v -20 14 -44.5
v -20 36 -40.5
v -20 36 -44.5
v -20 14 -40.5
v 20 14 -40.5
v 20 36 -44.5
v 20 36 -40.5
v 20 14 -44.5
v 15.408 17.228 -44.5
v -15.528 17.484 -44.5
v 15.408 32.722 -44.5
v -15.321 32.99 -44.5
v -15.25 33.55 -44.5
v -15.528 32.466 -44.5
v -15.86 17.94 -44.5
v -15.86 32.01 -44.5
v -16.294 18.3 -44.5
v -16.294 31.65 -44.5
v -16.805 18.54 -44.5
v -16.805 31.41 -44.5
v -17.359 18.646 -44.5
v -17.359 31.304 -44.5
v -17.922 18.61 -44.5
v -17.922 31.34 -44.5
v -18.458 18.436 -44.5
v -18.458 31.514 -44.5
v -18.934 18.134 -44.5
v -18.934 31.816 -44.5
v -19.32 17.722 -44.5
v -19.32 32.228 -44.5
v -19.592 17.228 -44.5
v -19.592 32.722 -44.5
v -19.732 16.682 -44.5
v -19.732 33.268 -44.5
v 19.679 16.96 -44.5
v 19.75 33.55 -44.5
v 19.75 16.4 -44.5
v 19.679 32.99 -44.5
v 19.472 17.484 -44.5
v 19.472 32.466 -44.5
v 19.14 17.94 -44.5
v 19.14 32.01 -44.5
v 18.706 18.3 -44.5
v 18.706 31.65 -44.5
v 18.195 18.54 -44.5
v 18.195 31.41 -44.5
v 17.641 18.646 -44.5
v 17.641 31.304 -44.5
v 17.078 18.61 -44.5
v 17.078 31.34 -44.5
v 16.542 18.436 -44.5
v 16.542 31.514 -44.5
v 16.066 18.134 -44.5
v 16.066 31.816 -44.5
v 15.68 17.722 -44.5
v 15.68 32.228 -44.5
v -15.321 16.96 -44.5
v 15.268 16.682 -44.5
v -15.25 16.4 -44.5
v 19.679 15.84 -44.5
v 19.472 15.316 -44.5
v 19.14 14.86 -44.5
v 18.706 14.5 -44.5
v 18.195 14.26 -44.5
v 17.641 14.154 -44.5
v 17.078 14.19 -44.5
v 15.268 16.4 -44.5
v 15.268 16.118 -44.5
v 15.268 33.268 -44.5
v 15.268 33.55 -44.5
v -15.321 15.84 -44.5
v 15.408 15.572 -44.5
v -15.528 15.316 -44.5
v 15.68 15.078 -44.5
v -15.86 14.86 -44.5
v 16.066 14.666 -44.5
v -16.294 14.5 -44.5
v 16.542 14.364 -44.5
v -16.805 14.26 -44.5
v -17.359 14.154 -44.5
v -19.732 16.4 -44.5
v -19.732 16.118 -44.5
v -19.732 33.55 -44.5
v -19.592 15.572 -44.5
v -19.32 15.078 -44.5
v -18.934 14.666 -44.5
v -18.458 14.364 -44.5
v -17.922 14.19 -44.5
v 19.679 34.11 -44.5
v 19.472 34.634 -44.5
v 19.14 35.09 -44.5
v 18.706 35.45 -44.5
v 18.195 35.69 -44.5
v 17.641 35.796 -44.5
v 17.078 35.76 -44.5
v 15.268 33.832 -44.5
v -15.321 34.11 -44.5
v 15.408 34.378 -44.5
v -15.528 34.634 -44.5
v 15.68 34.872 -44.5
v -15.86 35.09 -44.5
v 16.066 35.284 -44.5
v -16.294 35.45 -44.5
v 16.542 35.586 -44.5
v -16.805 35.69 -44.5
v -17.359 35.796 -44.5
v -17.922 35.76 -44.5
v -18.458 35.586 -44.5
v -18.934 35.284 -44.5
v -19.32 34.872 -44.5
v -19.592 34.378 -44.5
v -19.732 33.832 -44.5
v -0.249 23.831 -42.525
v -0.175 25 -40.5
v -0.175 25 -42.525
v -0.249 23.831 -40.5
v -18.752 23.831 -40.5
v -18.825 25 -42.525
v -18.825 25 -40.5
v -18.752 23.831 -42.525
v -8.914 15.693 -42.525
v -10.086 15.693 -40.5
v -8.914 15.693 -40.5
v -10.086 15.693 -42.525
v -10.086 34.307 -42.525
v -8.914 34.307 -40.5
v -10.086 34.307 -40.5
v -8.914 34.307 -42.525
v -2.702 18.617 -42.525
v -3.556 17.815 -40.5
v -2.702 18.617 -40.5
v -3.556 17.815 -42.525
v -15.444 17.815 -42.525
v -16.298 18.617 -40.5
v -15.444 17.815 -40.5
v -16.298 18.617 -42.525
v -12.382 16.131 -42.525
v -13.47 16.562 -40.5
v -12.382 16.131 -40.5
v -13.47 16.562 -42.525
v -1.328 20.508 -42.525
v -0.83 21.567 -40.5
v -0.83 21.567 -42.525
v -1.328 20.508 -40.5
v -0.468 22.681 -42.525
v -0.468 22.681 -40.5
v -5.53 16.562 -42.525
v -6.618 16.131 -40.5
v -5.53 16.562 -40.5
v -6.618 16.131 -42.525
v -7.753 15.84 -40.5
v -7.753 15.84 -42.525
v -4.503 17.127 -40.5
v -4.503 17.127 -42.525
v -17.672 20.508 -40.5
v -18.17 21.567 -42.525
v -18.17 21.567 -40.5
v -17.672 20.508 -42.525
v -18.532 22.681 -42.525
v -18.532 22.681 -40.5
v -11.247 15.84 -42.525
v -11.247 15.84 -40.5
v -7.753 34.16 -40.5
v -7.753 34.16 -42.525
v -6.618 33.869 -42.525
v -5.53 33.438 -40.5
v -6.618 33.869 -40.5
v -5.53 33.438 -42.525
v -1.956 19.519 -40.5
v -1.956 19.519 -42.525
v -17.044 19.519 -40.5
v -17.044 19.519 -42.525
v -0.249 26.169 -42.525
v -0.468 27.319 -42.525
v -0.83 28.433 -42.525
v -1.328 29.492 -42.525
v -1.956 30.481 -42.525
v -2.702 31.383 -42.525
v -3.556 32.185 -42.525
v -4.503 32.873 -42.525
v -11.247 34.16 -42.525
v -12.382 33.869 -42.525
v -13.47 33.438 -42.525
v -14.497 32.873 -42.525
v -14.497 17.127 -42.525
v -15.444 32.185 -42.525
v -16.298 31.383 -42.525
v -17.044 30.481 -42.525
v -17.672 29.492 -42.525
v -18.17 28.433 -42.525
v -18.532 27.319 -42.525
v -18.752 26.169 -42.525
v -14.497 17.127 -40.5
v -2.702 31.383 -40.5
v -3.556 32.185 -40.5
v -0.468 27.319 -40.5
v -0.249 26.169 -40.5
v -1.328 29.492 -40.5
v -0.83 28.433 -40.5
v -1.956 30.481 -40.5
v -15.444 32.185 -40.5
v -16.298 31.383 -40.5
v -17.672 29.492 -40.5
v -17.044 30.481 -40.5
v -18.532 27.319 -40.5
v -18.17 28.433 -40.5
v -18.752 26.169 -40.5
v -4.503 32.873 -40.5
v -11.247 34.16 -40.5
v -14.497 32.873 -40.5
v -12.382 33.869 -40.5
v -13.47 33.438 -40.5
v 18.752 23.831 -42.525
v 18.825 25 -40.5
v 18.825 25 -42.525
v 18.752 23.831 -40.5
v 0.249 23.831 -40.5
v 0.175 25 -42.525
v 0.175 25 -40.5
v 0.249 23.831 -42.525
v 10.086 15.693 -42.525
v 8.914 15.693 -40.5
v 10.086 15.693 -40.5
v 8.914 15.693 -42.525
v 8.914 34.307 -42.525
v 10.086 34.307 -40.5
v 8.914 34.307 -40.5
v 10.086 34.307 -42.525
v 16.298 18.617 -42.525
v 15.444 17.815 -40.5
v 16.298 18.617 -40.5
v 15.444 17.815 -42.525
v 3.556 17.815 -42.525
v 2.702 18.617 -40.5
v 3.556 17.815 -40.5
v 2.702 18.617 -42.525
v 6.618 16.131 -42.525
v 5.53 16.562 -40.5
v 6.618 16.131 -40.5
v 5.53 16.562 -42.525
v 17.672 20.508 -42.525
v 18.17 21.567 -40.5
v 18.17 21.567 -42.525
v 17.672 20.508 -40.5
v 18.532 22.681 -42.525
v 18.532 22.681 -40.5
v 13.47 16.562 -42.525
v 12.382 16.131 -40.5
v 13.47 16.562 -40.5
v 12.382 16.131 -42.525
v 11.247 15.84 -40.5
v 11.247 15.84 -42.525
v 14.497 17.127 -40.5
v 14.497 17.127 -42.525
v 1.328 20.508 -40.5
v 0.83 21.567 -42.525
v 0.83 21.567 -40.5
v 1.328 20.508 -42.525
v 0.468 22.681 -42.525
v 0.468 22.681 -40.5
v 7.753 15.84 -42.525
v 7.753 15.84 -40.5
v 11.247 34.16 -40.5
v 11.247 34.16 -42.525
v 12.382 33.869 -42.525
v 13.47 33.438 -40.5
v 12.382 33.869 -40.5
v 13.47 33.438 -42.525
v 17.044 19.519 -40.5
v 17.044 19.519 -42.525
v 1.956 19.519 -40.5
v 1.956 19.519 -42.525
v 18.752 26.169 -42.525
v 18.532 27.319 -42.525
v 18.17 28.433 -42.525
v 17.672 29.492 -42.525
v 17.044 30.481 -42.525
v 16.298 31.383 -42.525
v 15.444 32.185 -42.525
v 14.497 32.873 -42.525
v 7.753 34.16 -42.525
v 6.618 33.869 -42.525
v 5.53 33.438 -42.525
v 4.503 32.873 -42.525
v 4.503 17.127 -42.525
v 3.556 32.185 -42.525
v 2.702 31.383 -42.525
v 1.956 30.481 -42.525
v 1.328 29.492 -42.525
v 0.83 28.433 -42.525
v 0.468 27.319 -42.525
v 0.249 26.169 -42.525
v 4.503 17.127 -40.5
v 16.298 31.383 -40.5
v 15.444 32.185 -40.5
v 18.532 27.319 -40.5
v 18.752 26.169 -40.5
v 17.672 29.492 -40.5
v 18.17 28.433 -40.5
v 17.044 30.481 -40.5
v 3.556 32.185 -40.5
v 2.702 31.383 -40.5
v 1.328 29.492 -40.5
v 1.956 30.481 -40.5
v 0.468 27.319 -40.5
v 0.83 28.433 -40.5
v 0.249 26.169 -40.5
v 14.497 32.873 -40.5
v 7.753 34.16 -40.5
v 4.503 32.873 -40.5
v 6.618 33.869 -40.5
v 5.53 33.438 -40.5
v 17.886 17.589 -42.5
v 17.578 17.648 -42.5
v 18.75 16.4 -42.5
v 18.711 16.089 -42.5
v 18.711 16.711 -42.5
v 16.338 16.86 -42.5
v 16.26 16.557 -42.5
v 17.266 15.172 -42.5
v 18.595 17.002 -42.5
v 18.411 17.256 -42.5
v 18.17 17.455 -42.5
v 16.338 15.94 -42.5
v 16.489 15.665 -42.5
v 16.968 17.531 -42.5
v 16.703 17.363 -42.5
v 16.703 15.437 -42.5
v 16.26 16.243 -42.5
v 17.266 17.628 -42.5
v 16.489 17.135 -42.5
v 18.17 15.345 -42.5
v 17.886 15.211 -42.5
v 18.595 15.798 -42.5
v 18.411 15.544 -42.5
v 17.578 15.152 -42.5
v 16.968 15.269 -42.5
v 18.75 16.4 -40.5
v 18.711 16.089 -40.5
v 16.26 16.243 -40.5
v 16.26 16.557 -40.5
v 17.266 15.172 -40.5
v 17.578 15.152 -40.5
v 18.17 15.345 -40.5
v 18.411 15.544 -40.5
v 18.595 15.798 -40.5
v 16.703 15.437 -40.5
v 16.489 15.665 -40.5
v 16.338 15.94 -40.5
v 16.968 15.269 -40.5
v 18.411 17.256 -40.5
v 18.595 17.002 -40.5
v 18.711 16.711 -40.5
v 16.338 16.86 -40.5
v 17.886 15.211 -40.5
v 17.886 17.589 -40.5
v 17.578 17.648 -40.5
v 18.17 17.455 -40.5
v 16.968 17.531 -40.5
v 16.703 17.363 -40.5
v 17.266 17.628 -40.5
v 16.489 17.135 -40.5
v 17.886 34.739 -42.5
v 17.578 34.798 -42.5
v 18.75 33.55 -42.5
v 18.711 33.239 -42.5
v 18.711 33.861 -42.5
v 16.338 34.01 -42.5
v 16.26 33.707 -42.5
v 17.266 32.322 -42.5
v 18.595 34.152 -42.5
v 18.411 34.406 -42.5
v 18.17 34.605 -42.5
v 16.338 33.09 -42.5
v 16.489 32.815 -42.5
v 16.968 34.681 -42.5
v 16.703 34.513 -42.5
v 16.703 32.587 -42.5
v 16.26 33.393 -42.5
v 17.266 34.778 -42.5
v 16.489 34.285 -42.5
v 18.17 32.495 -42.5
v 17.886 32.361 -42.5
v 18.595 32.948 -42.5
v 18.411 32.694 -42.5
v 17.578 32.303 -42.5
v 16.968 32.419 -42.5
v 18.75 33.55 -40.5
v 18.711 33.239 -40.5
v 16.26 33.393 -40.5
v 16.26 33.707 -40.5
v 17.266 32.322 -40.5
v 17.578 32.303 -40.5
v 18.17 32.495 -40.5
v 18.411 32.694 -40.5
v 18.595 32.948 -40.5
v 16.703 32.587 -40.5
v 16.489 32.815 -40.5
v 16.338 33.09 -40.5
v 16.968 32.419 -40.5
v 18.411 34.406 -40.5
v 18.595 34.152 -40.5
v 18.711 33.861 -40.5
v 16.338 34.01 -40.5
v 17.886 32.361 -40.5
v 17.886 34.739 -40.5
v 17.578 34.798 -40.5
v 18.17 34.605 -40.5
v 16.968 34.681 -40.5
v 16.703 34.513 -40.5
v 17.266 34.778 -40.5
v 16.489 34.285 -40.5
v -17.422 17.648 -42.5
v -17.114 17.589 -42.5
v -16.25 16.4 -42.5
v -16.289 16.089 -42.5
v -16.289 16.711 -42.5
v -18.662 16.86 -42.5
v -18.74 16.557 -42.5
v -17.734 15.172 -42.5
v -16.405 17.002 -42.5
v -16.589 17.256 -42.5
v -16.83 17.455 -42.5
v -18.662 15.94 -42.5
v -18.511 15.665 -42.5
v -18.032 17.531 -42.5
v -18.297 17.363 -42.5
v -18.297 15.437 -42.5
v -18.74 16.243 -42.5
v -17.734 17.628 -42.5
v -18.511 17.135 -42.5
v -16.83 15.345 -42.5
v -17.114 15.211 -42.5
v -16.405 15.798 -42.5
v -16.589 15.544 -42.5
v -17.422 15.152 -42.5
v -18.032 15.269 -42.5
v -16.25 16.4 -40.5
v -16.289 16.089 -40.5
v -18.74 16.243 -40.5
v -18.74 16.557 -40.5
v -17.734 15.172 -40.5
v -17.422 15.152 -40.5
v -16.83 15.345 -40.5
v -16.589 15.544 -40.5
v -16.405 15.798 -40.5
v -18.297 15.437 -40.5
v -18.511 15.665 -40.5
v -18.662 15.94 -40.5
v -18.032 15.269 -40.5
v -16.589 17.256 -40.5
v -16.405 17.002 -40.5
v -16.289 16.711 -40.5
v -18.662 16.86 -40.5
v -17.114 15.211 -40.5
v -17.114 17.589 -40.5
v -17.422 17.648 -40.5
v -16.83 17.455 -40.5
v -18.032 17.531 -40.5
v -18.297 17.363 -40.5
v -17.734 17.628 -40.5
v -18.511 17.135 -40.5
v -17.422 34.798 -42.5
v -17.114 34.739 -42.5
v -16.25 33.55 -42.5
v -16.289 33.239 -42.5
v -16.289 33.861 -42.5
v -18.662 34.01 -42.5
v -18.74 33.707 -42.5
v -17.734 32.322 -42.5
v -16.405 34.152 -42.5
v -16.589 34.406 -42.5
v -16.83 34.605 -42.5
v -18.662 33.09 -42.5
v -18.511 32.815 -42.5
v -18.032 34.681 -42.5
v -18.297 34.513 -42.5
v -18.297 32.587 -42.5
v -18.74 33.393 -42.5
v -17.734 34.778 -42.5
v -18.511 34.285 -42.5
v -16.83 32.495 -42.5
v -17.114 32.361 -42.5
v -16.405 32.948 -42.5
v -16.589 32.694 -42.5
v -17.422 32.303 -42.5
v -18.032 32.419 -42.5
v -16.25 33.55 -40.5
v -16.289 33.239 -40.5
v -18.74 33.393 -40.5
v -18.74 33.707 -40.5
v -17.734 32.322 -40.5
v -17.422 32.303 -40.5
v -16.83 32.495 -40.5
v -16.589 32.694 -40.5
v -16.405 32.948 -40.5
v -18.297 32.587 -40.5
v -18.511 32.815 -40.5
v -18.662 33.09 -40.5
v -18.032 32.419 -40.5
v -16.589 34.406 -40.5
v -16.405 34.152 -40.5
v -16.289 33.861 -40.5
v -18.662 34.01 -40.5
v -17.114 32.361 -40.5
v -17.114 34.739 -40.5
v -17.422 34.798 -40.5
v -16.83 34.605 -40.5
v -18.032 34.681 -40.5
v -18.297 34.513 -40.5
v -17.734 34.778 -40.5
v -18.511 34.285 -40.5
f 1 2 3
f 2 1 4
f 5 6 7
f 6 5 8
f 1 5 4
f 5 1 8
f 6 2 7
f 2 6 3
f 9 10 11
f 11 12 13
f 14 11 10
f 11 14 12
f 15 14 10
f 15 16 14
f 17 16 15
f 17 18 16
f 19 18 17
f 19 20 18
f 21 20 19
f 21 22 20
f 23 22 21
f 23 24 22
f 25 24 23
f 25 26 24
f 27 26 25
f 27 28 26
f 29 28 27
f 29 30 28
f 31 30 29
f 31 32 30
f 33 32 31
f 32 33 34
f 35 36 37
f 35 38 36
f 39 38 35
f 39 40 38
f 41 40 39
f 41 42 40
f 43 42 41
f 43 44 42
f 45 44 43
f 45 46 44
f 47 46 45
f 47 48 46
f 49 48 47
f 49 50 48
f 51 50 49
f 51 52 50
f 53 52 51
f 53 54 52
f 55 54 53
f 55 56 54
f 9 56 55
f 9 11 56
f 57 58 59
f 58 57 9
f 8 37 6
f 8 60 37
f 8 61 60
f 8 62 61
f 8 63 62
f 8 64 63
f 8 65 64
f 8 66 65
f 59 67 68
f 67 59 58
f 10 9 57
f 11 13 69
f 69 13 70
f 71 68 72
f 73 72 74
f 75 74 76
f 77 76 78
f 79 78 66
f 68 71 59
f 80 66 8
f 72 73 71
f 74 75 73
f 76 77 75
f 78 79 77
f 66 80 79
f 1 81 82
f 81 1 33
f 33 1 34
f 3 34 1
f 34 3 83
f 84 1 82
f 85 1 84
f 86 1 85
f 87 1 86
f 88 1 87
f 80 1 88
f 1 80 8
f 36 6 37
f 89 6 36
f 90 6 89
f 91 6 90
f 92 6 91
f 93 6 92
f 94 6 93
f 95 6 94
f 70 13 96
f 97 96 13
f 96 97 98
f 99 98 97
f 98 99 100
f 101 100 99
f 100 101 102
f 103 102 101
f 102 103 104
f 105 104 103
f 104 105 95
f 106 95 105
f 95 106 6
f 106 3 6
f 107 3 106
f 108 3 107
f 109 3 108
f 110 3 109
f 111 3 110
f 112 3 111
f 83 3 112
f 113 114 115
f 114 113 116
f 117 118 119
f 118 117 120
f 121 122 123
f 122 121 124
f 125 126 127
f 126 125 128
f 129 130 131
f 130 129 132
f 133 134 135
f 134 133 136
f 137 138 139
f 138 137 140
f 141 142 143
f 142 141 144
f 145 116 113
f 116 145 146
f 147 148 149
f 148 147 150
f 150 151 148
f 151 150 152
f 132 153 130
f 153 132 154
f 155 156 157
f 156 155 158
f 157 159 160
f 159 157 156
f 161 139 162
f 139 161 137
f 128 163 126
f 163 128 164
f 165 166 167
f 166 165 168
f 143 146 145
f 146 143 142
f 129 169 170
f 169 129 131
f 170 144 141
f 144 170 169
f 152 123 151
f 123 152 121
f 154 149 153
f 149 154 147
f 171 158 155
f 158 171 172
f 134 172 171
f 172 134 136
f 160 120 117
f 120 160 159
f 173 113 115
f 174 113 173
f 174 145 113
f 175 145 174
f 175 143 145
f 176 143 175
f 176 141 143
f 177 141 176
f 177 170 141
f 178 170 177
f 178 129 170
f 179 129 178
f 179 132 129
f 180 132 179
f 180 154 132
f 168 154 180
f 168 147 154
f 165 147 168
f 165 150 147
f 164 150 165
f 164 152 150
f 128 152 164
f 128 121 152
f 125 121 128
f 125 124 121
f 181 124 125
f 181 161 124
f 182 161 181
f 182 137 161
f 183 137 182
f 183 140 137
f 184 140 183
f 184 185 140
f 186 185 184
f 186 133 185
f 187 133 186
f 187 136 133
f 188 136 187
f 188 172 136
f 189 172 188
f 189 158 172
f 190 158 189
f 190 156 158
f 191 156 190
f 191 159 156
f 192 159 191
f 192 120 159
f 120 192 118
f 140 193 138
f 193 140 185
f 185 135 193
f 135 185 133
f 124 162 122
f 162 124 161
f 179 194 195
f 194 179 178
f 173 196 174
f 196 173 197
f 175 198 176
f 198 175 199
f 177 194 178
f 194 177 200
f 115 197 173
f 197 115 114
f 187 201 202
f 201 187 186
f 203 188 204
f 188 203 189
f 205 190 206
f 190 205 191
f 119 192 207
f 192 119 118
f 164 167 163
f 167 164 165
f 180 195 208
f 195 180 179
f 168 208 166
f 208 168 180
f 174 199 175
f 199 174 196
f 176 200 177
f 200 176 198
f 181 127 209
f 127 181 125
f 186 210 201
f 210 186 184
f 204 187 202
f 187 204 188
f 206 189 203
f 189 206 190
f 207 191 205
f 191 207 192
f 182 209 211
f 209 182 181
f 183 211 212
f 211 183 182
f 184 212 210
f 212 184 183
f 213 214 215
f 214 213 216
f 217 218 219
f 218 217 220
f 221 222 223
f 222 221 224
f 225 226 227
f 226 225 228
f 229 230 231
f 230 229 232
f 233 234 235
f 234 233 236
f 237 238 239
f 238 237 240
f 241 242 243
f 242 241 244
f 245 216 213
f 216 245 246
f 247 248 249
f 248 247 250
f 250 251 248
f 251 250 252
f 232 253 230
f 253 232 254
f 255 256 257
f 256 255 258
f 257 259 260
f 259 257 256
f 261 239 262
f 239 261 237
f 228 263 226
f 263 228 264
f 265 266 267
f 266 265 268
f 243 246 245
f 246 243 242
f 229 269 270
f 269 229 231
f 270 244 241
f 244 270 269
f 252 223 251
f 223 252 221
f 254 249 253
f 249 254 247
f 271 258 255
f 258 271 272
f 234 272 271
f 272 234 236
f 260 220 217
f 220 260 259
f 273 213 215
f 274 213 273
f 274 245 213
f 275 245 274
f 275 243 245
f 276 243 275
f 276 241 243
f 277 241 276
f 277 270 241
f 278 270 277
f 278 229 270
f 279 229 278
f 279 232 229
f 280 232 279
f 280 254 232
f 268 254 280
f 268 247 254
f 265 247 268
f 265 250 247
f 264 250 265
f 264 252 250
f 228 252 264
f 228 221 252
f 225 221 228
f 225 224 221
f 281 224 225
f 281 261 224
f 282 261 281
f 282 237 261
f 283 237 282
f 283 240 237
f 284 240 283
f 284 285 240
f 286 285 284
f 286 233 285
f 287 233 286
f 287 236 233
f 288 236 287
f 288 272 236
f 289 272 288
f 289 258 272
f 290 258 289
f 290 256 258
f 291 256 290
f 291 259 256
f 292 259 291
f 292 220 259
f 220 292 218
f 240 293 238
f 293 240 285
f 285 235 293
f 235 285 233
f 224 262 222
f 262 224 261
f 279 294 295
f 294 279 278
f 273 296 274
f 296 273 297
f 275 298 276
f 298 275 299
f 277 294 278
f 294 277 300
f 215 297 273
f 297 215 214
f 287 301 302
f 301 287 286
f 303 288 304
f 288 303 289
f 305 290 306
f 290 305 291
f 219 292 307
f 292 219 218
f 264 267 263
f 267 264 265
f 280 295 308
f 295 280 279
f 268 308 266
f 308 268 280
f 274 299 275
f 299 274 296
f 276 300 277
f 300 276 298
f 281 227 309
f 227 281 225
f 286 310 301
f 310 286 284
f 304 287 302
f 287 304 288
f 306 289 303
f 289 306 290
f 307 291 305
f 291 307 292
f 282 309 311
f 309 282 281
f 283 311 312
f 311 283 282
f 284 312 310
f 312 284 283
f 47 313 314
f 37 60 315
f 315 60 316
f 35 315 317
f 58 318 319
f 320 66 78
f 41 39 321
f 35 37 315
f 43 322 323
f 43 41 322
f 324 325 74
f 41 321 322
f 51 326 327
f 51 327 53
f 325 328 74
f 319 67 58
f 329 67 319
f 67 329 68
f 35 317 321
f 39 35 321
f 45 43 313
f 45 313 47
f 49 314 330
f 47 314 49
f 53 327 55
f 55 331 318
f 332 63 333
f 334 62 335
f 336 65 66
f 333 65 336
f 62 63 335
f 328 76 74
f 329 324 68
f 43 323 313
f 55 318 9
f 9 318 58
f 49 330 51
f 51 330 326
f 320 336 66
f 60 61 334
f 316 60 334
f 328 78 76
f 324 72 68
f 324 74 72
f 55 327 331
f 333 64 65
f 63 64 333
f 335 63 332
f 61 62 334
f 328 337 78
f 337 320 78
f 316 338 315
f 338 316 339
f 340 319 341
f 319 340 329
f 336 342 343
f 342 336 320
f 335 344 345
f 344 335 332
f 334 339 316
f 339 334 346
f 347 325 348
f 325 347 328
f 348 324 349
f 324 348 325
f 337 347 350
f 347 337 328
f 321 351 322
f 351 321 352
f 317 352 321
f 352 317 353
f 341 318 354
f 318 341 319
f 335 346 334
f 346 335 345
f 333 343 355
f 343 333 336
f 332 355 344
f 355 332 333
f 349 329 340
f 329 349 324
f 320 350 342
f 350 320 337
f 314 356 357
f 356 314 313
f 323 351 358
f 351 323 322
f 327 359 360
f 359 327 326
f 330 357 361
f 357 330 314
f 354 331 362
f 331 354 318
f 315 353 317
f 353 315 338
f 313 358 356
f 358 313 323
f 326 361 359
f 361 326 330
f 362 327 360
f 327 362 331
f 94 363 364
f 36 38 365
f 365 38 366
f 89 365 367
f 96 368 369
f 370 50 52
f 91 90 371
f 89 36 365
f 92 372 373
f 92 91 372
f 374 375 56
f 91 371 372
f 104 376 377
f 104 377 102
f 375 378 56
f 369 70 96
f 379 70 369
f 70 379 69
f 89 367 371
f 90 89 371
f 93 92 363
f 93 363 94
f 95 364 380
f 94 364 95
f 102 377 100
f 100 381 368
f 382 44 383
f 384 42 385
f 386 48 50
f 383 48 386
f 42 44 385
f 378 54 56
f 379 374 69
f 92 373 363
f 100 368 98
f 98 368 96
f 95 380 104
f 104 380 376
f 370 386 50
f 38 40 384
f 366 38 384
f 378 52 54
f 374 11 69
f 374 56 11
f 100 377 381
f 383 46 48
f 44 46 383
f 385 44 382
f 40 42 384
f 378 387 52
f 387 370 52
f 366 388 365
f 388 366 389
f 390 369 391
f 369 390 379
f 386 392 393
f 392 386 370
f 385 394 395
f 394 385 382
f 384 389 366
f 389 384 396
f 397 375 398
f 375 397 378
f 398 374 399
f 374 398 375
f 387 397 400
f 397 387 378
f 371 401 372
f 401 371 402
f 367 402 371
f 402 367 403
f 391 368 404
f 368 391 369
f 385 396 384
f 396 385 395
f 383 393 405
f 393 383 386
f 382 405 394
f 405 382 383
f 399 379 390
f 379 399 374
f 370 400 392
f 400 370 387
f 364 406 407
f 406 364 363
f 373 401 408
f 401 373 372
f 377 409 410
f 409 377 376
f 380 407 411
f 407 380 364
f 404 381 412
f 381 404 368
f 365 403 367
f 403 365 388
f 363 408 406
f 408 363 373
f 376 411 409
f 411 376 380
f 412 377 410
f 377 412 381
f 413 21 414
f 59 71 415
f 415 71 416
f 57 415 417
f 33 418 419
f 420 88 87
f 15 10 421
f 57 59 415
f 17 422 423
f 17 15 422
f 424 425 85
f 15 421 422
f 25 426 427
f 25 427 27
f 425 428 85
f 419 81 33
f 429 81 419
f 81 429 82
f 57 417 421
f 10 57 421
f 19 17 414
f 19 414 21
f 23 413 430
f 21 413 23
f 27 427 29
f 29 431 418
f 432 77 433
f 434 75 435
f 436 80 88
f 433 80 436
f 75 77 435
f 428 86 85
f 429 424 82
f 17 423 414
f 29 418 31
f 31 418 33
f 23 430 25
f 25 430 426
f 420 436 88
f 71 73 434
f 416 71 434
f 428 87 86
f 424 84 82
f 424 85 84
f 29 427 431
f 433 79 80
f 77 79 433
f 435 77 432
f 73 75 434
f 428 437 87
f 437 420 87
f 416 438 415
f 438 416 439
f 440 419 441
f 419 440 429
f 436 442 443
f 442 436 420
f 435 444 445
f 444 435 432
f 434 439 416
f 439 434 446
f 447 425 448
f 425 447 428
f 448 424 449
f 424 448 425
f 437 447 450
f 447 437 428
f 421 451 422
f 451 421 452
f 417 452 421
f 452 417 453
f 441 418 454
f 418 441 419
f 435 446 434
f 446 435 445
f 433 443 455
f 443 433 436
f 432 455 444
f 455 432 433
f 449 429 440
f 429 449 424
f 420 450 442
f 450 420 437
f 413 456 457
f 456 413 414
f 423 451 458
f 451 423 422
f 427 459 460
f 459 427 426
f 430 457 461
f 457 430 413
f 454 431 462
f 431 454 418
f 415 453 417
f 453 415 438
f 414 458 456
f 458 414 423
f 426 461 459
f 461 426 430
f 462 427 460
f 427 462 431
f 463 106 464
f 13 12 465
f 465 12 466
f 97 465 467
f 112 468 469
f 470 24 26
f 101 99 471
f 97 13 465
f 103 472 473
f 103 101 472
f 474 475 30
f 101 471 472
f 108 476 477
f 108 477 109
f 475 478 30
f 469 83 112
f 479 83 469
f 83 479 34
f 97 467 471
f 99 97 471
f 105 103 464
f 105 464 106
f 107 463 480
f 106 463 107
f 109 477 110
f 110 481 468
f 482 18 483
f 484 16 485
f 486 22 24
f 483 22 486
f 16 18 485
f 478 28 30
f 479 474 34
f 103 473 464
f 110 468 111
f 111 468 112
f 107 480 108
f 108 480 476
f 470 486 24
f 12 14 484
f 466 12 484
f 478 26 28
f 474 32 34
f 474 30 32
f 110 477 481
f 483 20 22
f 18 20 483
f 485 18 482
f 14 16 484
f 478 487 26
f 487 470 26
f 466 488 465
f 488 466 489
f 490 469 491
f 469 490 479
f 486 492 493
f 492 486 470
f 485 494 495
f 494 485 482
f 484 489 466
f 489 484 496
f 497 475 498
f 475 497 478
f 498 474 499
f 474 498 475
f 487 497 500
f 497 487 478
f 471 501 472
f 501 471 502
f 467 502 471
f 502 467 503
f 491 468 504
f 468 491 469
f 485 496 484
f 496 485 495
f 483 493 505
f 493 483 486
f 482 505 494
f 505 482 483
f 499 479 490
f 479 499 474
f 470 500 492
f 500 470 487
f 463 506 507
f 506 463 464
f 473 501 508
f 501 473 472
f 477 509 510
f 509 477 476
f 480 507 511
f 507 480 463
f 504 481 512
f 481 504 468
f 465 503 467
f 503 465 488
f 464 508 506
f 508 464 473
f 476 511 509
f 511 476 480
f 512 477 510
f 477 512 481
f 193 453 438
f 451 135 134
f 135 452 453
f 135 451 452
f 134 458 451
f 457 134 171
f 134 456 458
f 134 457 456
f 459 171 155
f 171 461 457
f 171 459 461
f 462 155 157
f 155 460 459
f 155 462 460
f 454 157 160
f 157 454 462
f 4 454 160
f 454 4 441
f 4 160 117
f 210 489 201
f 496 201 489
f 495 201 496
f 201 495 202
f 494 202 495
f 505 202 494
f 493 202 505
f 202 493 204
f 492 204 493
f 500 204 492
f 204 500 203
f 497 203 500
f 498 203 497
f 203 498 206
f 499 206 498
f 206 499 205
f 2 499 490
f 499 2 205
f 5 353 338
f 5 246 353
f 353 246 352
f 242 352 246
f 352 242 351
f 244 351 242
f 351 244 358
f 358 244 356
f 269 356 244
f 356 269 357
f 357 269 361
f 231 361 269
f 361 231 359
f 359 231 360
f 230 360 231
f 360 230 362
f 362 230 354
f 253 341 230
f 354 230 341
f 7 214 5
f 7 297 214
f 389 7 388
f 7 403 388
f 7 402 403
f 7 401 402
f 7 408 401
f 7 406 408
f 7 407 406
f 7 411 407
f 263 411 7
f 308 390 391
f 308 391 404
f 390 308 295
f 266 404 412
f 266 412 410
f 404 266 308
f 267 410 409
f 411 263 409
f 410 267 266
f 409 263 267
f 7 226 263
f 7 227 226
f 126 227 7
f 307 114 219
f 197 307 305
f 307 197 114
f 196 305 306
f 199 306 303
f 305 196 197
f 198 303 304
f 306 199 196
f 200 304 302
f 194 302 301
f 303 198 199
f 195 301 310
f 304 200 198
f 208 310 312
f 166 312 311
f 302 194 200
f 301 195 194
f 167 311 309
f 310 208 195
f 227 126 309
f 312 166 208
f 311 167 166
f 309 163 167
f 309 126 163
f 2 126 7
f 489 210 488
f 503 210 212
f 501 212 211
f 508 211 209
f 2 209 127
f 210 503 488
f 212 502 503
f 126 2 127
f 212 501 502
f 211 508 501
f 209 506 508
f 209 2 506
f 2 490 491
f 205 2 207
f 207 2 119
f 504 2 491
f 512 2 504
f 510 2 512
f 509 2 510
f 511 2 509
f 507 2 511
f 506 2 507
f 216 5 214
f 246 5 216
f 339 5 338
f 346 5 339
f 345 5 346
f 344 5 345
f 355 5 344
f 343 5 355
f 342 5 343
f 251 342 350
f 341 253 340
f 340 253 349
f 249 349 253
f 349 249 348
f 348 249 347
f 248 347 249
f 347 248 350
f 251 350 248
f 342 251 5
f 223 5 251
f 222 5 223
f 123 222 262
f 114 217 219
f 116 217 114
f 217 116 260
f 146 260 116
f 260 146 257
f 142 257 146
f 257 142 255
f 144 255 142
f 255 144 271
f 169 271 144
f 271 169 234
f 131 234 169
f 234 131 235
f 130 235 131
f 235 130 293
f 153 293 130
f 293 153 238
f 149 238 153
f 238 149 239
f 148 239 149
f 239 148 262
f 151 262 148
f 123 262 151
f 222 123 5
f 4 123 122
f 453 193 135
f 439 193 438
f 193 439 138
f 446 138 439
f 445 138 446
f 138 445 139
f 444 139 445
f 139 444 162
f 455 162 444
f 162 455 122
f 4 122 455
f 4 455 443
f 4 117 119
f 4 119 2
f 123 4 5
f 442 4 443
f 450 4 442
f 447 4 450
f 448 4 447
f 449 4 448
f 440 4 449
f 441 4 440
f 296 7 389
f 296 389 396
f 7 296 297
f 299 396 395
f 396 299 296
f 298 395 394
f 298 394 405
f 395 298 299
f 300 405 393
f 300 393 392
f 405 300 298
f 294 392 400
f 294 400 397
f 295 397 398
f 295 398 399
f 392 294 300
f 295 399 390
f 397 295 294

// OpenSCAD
// file: openscad-extra/src/countersink.scad
/*
Countersink depression for tapered screw heads.
*/

module make_countersink(d1=0, d2=0, h=0, outer=10, inner=0, $fn=25){
    /*
    d1 = shaft diameter
    d2 = head diameter
    h = height of taper
    outer = height of head mass
    inner = height of shaft mass, including taper
    */
    default_taper_height = 2;
    d1 = d1 ? d1 : 2.5;
    d2 = d2 ? d2 : 5;
    h = h ? h : default_taper_height;
    inner = (inner ? inner : 10) - default_taper_height;
    
    translate([0, 0, -default_taper_height/2])
    union(){
        
        // taper
        cylinder(d1=d1, d2=d2, h=h, center=true, $fn=$fn);
    
        // big top
    	translate([0, 0, h/2])
    	cylinder(d=d2, h=outer, center=false, $fn=$fn);
        
    	// lower bottom
    	translate([0, 0, -h/2-inner])
    	cylinder(d=d1, h=inner, center=false, $fn=$fn);
	}
}

make_countersink(inner=10);

color("blue")
translate([0,2,0])
cylinder(d=2.5, h=20, center=true, $fn=100);
// file: openscad-extra/src/strut.scad
module make_cross_beams_1(w, h, t, $fn=50){

    //sohcahtoa
    angle = atan((h-t)/(w-t));

    //c^2 = a^2 + b^2
    diagonal = sqrt(pow(w-t, 2) + pow(h-t, 2));

	    for(i=[0:1]){
	        mirror([0,0,i])
	        translate([0, -w/2+t/2, -h/2+t/2])
	        rotate([angle, 0, 0])
	        translate([-t/2, 0, -t/2])
	        cube([t, diagonal, t], center=false);
	    }
}

module make_cross_beams_2(w, h, t, $fn=50){

    //sohcahtoa
    angle = atan((h-t)/(w-t));

    //c^2 = a^2 + b^2
    diagonal = sqrt(pow(w-t, 2) + pow(h-t, 2));

	    for(i=[-1:2:1]){
			intersection(){
				translate([0, 0, -h/2*i])
				scale([1, 1, (h+t/2)/w])
				rotate([0, 90, 0])
				difference(){
					cylinder(d=w, h=t, center=true, $fn=$fn);
					cylinder(d=w-t*2, h=t, center=true, $fn=$fn);
				}
				cube([t, w, h], center=true);
			}
		}
}

module make_cross_plate(w, h, t, hub_d=0, cross_type=1, $fn=50){

    //sohcahtoa
    angle = atan((h-t)/(w-t));

    //c^2 = a^2 + b^2
    diagonal = sqrt(pow(w-t, 2) + pow(h-t, 2));

    // border
    difference(){
        cube([t,w,h], center=true);
        cube([t*2,w-t*2,h-t*2], center=true);
    }

    // cross beam
	if(cross_type==1){
		make_cross_beams_1(w=w, h=h, t=t);
	}
	if(cross_type==2){
		make_cross_beams_2(w=w, h=h, t=t);
	}
    
	if(hub_d){
	    rotate([0,90,0])
	    cylinder(d=hub_d, h=t, center=true, $fn=$fn);
	}

}

u = 5;

make_cross_plate(
	w=u*20,
	h=u*10,
	hub_d=0,//u*4,
	t=u,
	cross_type=1
);
// main file
use <balancer.scad>;

rotate([90,0,0])
balancer_weight_container_door();
